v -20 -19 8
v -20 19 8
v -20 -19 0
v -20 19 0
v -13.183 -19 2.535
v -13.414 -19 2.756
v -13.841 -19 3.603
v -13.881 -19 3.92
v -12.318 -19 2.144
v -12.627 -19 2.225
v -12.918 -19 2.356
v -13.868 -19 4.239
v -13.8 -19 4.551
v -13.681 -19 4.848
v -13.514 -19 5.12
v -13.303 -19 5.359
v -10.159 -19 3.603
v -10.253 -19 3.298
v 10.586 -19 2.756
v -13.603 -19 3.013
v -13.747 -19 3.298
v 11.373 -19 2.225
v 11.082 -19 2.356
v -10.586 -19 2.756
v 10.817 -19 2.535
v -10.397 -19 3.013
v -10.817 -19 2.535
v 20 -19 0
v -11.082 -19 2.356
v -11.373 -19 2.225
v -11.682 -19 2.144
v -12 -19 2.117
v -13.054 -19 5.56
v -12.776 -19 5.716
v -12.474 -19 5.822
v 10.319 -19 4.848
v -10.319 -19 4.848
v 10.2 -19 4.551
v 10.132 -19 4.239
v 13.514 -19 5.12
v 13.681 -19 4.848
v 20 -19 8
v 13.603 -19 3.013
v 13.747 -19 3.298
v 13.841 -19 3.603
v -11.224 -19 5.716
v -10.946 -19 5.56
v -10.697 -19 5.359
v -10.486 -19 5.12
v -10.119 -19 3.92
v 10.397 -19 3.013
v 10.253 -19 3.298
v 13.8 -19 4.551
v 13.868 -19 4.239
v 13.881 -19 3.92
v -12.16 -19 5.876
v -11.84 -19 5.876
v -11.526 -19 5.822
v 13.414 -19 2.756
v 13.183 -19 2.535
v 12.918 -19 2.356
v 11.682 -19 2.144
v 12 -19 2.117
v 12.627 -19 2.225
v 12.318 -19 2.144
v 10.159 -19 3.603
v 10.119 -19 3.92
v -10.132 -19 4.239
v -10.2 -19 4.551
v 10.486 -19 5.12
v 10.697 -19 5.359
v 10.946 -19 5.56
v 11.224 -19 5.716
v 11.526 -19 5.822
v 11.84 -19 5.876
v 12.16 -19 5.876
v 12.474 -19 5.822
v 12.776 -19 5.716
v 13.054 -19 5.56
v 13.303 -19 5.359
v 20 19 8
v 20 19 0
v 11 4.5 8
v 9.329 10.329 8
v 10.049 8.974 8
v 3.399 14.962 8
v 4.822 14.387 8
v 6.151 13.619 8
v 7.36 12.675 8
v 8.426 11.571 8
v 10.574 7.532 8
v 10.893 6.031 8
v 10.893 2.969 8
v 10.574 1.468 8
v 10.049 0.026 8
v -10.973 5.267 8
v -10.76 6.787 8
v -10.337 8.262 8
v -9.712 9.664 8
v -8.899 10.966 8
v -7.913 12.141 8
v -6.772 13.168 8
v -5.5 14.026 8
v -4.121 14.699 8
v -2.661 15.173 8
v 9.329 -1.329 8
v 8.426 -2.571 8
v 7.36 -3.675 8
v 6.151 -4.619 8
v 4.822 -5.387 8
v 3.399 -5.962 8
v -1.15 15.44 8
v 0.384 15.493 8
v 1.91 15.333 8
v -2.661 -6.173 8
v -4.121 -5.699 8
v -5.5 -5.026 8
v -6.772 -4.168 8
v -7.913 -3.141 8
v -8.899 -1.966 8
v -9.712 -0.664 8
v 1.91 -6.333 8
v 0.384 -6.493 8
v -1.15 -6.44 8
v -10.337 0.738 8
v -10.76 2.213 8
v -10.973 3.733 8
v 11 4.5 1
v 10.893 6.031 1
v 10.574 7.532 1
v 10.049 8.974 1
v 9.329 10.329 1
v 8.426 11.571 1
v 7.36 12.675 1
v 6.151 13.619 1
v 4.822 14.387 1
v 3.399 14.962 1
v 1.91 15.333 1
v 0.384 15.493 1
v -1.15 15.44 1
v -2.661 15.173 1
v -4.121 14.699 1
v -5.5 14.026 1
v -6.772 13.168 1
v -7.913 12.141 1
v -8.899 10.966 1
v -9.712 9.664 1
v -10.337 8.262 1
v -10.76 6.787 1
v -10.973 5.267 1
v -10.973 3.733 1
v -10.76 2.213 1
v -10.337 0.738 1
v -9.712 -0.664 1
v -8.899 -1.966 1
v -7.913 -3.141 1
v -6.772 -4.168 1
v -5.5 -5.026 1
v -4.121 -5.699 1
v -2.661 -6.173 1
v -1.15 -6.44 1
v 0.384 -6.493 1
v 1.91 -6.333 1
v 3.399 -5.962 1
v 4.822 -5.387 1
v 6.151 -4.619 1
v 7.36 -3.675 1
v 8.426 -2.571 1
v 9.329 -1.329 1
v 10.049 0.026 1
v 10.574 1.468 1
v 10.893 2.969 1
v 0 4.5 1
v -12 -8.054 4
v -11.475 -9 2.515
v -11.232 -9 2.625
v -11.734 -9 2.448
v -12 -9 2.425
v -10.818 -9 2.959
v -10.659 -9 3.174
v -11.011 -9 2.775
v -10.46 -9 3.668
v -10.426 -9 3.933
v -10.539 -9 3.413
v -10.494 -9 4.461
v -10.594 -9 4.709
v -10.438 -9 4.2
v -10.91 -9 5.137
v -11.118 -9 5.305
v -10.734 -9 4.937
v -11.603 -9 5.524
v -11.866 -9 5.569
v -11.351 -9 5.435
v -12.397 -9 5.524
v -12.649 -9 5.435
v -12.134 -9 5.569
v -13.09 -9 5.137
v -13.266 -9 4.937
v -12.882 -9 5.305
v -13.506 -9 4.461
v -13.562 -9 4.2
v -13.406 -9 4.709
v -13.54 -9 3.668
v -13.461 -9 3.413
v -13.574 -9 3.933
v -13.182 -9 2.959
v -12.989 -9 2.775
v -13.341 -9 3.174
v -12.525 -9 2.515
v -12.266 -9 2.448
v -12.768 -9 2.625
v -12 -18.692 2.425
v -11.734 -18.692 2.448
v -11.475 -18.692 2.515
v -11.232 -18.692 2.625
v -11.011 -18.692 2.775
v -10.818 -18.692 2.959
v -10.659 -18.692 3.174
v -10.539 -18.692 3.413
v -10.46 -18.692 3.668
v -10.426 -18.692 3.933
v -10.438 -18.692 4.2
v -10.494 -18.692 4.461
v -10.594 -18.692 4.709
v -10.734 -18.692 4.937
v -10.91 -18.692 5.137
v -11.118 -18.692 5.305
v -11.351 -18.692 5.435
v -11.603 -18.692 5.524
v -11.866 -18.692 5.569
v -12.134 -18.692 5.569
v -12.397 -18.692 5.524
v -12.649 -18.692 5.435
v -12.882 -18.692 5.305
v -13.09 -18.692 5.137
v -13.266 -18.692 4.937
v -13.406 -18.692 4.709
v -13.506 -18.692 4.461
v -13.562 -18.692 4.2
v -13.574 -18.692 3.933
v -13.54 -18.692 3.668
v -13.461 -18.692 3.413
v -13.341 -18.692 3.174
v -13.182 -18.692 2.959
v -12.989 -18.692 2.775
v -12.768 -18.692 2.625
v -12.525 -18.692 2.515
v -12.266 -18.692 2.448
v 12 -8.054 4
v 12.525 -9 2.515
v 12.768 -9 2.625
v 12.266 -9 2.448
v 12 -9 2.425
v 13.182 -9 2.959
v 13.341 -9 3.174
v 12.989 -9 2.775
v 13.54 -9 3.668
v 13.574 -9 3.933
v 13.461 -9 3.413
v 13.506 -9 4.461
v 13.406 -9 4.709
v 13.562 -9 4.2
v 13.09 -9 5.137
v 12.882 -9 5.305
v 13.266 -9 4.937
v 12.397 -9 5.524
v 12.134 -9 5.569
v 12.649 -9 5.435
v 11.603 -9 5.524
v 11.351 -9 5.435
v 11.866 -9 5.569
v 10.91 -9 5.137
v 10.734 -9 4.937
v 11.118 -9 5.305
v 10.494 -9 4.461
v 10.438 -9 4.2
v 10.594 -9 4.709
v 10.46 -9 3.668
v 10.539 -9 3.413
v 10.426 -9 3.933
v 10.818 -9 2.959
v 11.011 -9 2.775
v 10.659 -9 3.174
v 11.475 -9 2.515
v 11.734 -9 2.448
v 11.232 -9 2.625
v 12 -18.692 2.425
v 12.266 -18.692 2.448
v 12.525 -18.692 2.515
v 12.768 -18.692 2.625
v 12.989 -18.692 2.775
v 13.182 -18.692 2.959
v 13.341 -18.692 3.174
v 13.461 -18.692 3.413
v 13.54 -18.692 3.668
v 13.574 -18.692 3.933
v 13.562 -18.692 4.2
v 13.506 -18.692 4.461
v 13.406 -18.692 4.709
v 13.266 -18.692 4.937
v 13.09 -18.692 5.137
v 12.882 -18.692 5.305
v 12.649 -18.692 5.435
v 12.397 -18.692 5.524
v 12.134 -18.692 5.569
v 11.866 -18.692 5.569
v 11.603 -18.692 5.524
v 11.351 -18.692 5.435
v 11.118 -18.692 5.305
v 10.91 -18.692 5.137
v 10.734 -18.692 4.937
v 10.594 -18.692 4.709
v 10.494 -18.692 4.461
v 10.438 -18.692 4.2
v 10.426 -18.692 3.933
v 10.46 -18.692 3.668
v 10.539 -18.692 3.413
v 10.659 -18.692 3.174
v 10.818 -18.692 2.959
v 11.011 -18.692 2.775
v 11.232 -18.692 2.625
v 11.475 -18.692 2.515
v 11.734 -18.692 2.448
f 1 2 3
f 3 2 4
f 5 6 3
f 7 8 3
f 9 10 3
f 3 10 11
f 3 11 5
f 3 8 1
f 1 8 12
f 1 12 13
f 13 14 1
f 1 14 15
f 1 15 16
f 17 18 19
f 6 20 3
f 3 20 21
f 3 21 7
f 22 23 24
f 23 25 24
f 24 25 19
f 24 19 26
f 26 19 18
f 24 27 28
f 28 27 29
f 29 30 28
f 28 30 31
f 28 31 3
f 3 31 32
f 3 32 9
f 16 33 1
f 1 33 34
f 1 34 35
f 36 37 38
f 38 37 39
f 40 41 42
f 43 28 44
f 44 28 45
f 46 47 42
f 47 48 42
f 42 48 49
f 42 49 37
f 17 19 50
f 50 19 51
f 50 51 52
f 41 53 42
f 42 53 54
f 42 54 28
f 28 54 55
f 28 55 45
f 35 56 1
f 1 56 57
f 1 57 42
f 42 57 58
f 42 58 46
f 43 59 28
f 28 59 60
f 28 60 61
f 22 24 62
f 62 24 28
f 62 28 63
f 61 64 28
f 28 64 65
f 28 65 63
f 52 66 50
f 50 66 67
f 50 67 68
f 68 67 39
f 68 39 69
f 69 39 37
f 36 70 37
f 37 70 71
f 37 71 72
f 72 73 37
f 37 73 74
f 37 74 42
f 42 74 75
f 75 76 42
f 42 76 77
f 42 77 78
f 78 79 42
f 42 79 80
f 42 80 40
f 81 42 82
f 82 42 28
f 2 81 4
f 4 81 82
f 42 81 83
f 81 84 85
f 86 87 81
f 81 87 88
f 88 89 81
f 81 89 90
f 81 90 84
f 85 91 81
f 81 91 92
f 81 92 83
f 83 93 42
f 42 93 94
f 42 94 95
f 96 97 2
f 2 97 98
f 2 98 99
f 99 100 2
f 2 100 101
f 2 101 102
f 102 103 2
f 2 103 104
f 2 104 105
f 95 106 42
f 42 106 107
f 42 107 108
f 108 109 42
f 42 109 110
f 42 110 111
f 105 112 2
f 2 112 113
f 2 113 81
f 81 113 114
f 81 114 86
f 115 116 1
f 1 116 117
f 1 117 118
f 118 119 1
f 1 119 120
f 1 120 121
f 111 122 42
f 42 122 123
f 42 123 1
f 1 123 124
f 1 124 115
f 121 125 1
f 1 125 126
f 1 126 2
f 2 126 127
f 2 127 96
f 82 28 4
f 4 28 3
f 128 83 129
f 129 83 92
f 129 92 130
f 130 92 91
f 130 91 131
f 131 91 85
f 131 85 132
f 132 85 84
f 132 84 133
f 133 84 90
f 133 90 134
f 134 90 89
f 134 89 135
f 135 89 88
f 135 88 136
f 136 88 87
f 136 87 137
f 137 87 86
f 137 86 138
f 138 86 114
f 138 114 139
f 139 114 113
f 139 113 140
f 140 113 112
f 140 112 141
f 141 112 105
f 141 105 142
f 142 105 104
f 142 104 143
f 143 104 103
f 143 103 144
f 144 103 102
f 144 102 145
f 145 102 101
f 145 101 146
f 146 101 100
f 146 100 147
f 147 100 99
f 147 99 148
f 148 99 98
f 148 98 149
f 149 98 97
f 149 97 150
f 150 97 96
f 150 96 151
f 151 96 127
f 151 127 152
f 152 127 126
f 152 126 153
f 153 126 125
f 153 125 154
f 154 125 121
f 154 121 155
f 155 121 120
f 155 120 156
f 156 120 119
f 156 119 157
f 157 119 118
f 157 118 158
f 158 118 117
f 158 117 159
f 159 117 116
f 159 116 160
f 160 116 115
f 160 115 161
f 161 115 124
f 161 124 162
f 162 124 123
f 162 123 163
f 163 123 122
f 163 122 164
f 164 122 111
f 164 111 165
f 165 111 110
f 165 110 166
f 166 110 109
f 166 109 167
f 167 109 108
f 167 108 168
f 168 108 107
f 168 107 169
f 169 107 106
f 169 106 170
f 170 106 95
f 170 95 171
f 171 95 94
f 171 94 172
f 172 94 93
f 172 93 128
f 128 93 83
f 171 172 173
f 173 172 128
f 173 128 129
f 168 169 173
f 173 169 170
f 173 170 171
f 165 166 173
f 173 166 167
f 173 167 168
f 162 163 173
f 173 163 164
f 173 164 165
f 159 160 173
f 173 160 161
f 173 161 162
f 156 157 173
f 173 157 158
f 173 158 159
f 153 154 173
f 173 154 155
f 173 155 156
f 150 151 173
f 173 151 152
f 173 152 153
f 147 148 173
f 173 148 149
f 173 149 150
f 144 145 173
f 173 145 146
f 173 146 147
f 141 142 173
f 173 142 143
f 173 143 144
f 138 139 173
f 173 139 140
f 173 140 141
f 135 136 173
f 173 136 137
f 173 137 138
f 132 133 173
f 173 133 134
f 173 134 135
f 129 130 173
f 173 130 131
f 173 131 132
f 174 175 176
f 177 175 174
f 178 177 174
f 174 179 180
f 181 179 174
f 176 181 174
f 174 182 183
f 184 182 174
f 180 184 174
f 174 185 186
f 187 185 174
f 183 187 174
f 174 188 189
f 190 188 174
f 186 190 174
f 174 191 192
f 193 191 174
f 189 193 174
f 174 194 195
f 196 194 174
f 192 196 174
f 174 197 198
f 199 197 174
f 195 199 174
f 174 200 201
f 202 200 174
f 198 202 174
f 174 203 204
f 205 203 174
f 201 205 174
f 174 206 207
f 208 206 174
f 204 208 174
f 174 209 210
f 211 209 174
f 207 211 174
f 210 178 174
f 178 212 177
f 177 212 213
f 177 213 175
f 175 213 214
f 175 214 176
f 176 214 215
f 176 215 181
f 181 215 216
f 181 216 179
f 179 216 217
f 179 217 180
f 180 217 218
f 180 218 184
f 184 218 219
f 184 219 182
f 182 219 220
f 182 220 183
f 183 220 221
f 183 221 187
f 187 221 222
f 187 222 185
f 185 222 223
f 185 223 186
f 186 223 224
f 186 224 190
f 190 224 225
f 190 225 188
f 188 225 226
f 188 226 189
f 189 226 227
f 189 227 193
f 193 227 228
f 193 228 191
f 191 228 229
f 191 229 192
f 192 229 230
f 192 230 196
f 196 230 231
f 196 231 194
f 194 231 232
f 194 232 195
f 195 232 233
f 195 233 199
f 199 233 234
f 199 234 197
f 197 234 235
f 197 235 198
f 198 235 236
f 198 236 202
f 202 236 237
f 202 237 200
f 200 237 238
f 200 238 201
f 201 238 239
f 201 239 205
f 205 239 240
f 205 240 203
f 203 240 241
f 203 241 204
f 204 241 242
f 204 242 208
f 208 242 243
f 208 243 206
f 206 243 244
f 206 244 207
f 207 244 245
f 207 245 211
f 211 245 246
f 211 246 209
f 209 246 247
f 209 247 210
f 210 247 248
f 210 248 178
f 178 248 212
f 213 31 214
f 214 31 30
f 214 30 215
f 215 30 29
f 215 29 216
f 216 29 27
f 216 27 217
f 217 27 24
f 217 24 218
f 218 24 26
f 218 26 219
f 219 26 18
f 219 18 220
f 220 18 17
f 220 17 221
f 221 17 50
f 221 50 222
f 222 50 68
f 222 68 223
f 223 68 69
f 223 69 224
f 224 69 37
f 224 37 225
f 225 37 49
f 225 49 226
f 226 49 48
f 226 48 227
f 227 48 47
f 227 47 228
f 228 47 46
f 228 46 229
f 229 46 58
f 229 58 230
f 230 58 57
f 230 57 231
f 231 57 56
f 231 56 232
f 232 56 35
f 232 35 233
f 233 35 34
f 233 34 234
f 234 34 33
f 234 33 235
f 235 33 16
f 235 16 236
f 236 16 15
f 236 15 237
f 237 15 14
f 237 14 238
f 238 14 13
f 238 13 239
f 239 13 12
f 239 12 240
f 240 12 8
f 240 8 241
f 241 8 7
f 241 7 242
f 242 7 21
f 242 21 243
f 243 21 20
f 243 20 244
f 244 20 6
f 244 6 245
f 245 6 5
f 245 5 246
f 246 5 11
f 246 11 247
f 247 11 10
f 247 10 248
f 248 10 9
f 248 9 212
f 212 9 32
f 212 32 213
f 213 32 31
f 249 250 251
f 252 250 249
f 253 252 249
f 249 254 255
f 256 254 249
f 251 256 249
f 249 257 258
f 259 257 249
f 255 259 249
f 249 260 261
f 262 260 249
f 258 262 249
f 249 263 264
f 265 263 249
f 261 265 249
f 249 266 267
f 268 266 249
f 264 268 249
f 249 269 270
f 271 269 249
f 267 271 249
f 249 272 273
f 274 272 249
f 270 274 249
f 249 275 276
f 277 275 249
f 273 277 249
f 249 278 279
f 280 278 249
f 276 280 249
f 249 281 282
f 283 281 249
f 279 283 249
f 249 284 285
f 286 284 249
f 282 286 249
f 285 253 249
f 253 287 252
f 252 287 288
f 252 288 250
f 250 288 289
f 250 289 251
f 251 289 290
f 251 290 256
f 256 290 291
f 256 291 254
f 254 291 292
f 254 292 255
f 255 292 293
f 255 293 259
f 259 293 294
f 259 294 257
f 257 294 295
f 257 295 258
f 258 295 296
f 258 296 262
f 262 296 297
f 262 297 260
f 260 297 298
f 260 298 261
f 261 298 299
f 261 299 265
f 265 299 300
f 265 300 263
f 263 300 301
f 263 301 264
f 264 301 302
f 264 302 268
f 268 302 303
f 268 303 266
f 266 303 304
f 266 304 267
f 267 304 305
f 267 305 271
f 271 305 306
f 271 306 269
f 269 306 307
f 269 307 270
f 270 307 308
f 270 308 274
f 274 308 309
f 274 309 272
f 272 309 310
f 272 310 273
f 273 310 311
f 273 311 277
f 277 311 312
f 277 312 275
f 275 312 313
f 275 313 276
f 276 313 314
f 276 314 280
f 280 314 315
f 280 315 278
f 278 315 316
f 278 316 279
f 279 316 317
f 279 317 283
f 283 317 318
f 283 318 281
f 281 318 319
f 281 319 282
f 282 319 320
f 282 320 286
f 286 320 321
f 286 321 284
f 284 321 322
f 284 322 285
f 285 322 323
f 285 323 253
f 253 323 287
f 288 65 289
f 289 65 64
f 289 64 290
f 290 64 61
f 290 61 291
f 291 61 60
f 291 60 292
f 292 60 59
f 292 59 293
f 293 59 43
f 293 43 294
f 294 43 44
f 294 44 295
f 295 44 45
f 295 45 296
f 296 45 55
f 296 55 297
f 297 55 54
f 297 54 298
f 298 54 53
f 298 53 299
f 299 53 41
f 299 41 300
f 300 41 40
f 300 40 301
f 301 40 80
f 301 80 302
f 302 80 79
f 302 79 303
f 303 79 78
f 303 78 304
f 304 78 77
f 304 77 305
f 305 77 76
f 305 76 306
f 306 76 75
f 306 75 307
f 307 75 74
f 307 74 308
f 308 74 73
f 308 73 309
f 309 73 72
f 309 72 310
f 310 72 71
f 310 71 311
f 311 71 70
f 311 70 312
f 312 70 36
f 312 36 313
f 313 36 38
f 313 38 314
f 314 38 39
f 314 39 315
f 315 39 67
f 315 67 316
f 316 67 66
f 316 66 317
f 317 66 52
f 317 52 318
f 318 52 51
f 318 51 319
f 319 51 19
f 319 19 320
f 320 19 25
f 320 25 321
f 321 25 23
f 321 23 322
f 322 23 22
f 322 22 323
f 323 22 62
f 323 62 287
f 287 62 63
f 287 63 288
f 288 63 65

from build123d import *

# Parameters (mm, degrees)
ESBO_O1_W                                         = 40
ESBO_O1_H                                         = 38
RESSALTO_EXTRUS_O1_DEPTH                          = 8
ESBO_O2_R                                         = 11
CORTE_EXTRUS_O1_DEPTH                             = 7
FURO_ROSCADO_PARA_CONDU_TE_DE_M3X0_51_D           = 3.15
FURO_ROSCADO_PARA_CONDU_TE_DE_M3X0_51_DEPTH       = 10
FURO_ROSCADO_PARA_CONDU_TE_DE_M3X0_51_CSINK_D     = 3.766
FURO_ROSCADO_PARA_CONDU_TE_DE_M3X0_51_CSINK_ANGLE = 90
FURO_ROSCADO_PARA_CONDU_TE_DE_M3X0_51_TIP         = 0.946355475


with BuildPart() as part:
    # Esboço1 → Ressalto-extrusão1 (new body)
    with BuildSketch(Plane.XY):
        Rectangle(ESBO_O1_W, ESBO_O1_H)
    extrude(amount=RESSALTO_EXTRUS_O1_DEPTH)

    # Esboço2 → Corte-extrusão1 (cut)
    with BuildSketch(Plane.XY.offset(8)):
        with Locations((0, 4.5)):
            Circle(ESBO_O2_R)
    extrude(amount=-CORTE_EXTRUS_O1_DEPTH, mode=Mode.SUBTRACT)

    # Furo roscado para conduíte de M3x0.51
    with Locations(Plane(origin=(0, -19, 0), x_dir=(-1, 0, 0), z_dir=(0, -1, 0))):
        with Locations((-12, -4), (12, -4)):
            CounterSinkHole(FURO_ROSCADO_PARA_CONDU_TE_DE_M3X0_51_D / 2, FURO_ROSCADO_PARA_CONDU_TE_DE_M3X0_51_CSINK_D / 2, depth=FURO_ROSCADO_PARA_CONDU_TE_DE_M3X0_51_DEPTH, counter_sink_angle=FURO_ROSCADO_PARA_CONDU_TE_DE_M3X0_51_CSINK_ANGLE)
            with Locations((0, 0, -(FURO_ROSCADO_PARA_CONDU_TE_DE_M3X0_51_DEPTH + FURO_ROSCADO_PARA_CONDU_TE_DE_M3X0_51_TIP / 2))):  # 118° drill point
                Cone(0, FURO_ROSCADO_PARA_CONDU_TE_DE_M3X0_51_D / 2, FURO_ROSCADO_PARA_CONDU_TE_DE_M3X0_51_TIP, mode=Mode.SUBTRACT)


solid = part.part
